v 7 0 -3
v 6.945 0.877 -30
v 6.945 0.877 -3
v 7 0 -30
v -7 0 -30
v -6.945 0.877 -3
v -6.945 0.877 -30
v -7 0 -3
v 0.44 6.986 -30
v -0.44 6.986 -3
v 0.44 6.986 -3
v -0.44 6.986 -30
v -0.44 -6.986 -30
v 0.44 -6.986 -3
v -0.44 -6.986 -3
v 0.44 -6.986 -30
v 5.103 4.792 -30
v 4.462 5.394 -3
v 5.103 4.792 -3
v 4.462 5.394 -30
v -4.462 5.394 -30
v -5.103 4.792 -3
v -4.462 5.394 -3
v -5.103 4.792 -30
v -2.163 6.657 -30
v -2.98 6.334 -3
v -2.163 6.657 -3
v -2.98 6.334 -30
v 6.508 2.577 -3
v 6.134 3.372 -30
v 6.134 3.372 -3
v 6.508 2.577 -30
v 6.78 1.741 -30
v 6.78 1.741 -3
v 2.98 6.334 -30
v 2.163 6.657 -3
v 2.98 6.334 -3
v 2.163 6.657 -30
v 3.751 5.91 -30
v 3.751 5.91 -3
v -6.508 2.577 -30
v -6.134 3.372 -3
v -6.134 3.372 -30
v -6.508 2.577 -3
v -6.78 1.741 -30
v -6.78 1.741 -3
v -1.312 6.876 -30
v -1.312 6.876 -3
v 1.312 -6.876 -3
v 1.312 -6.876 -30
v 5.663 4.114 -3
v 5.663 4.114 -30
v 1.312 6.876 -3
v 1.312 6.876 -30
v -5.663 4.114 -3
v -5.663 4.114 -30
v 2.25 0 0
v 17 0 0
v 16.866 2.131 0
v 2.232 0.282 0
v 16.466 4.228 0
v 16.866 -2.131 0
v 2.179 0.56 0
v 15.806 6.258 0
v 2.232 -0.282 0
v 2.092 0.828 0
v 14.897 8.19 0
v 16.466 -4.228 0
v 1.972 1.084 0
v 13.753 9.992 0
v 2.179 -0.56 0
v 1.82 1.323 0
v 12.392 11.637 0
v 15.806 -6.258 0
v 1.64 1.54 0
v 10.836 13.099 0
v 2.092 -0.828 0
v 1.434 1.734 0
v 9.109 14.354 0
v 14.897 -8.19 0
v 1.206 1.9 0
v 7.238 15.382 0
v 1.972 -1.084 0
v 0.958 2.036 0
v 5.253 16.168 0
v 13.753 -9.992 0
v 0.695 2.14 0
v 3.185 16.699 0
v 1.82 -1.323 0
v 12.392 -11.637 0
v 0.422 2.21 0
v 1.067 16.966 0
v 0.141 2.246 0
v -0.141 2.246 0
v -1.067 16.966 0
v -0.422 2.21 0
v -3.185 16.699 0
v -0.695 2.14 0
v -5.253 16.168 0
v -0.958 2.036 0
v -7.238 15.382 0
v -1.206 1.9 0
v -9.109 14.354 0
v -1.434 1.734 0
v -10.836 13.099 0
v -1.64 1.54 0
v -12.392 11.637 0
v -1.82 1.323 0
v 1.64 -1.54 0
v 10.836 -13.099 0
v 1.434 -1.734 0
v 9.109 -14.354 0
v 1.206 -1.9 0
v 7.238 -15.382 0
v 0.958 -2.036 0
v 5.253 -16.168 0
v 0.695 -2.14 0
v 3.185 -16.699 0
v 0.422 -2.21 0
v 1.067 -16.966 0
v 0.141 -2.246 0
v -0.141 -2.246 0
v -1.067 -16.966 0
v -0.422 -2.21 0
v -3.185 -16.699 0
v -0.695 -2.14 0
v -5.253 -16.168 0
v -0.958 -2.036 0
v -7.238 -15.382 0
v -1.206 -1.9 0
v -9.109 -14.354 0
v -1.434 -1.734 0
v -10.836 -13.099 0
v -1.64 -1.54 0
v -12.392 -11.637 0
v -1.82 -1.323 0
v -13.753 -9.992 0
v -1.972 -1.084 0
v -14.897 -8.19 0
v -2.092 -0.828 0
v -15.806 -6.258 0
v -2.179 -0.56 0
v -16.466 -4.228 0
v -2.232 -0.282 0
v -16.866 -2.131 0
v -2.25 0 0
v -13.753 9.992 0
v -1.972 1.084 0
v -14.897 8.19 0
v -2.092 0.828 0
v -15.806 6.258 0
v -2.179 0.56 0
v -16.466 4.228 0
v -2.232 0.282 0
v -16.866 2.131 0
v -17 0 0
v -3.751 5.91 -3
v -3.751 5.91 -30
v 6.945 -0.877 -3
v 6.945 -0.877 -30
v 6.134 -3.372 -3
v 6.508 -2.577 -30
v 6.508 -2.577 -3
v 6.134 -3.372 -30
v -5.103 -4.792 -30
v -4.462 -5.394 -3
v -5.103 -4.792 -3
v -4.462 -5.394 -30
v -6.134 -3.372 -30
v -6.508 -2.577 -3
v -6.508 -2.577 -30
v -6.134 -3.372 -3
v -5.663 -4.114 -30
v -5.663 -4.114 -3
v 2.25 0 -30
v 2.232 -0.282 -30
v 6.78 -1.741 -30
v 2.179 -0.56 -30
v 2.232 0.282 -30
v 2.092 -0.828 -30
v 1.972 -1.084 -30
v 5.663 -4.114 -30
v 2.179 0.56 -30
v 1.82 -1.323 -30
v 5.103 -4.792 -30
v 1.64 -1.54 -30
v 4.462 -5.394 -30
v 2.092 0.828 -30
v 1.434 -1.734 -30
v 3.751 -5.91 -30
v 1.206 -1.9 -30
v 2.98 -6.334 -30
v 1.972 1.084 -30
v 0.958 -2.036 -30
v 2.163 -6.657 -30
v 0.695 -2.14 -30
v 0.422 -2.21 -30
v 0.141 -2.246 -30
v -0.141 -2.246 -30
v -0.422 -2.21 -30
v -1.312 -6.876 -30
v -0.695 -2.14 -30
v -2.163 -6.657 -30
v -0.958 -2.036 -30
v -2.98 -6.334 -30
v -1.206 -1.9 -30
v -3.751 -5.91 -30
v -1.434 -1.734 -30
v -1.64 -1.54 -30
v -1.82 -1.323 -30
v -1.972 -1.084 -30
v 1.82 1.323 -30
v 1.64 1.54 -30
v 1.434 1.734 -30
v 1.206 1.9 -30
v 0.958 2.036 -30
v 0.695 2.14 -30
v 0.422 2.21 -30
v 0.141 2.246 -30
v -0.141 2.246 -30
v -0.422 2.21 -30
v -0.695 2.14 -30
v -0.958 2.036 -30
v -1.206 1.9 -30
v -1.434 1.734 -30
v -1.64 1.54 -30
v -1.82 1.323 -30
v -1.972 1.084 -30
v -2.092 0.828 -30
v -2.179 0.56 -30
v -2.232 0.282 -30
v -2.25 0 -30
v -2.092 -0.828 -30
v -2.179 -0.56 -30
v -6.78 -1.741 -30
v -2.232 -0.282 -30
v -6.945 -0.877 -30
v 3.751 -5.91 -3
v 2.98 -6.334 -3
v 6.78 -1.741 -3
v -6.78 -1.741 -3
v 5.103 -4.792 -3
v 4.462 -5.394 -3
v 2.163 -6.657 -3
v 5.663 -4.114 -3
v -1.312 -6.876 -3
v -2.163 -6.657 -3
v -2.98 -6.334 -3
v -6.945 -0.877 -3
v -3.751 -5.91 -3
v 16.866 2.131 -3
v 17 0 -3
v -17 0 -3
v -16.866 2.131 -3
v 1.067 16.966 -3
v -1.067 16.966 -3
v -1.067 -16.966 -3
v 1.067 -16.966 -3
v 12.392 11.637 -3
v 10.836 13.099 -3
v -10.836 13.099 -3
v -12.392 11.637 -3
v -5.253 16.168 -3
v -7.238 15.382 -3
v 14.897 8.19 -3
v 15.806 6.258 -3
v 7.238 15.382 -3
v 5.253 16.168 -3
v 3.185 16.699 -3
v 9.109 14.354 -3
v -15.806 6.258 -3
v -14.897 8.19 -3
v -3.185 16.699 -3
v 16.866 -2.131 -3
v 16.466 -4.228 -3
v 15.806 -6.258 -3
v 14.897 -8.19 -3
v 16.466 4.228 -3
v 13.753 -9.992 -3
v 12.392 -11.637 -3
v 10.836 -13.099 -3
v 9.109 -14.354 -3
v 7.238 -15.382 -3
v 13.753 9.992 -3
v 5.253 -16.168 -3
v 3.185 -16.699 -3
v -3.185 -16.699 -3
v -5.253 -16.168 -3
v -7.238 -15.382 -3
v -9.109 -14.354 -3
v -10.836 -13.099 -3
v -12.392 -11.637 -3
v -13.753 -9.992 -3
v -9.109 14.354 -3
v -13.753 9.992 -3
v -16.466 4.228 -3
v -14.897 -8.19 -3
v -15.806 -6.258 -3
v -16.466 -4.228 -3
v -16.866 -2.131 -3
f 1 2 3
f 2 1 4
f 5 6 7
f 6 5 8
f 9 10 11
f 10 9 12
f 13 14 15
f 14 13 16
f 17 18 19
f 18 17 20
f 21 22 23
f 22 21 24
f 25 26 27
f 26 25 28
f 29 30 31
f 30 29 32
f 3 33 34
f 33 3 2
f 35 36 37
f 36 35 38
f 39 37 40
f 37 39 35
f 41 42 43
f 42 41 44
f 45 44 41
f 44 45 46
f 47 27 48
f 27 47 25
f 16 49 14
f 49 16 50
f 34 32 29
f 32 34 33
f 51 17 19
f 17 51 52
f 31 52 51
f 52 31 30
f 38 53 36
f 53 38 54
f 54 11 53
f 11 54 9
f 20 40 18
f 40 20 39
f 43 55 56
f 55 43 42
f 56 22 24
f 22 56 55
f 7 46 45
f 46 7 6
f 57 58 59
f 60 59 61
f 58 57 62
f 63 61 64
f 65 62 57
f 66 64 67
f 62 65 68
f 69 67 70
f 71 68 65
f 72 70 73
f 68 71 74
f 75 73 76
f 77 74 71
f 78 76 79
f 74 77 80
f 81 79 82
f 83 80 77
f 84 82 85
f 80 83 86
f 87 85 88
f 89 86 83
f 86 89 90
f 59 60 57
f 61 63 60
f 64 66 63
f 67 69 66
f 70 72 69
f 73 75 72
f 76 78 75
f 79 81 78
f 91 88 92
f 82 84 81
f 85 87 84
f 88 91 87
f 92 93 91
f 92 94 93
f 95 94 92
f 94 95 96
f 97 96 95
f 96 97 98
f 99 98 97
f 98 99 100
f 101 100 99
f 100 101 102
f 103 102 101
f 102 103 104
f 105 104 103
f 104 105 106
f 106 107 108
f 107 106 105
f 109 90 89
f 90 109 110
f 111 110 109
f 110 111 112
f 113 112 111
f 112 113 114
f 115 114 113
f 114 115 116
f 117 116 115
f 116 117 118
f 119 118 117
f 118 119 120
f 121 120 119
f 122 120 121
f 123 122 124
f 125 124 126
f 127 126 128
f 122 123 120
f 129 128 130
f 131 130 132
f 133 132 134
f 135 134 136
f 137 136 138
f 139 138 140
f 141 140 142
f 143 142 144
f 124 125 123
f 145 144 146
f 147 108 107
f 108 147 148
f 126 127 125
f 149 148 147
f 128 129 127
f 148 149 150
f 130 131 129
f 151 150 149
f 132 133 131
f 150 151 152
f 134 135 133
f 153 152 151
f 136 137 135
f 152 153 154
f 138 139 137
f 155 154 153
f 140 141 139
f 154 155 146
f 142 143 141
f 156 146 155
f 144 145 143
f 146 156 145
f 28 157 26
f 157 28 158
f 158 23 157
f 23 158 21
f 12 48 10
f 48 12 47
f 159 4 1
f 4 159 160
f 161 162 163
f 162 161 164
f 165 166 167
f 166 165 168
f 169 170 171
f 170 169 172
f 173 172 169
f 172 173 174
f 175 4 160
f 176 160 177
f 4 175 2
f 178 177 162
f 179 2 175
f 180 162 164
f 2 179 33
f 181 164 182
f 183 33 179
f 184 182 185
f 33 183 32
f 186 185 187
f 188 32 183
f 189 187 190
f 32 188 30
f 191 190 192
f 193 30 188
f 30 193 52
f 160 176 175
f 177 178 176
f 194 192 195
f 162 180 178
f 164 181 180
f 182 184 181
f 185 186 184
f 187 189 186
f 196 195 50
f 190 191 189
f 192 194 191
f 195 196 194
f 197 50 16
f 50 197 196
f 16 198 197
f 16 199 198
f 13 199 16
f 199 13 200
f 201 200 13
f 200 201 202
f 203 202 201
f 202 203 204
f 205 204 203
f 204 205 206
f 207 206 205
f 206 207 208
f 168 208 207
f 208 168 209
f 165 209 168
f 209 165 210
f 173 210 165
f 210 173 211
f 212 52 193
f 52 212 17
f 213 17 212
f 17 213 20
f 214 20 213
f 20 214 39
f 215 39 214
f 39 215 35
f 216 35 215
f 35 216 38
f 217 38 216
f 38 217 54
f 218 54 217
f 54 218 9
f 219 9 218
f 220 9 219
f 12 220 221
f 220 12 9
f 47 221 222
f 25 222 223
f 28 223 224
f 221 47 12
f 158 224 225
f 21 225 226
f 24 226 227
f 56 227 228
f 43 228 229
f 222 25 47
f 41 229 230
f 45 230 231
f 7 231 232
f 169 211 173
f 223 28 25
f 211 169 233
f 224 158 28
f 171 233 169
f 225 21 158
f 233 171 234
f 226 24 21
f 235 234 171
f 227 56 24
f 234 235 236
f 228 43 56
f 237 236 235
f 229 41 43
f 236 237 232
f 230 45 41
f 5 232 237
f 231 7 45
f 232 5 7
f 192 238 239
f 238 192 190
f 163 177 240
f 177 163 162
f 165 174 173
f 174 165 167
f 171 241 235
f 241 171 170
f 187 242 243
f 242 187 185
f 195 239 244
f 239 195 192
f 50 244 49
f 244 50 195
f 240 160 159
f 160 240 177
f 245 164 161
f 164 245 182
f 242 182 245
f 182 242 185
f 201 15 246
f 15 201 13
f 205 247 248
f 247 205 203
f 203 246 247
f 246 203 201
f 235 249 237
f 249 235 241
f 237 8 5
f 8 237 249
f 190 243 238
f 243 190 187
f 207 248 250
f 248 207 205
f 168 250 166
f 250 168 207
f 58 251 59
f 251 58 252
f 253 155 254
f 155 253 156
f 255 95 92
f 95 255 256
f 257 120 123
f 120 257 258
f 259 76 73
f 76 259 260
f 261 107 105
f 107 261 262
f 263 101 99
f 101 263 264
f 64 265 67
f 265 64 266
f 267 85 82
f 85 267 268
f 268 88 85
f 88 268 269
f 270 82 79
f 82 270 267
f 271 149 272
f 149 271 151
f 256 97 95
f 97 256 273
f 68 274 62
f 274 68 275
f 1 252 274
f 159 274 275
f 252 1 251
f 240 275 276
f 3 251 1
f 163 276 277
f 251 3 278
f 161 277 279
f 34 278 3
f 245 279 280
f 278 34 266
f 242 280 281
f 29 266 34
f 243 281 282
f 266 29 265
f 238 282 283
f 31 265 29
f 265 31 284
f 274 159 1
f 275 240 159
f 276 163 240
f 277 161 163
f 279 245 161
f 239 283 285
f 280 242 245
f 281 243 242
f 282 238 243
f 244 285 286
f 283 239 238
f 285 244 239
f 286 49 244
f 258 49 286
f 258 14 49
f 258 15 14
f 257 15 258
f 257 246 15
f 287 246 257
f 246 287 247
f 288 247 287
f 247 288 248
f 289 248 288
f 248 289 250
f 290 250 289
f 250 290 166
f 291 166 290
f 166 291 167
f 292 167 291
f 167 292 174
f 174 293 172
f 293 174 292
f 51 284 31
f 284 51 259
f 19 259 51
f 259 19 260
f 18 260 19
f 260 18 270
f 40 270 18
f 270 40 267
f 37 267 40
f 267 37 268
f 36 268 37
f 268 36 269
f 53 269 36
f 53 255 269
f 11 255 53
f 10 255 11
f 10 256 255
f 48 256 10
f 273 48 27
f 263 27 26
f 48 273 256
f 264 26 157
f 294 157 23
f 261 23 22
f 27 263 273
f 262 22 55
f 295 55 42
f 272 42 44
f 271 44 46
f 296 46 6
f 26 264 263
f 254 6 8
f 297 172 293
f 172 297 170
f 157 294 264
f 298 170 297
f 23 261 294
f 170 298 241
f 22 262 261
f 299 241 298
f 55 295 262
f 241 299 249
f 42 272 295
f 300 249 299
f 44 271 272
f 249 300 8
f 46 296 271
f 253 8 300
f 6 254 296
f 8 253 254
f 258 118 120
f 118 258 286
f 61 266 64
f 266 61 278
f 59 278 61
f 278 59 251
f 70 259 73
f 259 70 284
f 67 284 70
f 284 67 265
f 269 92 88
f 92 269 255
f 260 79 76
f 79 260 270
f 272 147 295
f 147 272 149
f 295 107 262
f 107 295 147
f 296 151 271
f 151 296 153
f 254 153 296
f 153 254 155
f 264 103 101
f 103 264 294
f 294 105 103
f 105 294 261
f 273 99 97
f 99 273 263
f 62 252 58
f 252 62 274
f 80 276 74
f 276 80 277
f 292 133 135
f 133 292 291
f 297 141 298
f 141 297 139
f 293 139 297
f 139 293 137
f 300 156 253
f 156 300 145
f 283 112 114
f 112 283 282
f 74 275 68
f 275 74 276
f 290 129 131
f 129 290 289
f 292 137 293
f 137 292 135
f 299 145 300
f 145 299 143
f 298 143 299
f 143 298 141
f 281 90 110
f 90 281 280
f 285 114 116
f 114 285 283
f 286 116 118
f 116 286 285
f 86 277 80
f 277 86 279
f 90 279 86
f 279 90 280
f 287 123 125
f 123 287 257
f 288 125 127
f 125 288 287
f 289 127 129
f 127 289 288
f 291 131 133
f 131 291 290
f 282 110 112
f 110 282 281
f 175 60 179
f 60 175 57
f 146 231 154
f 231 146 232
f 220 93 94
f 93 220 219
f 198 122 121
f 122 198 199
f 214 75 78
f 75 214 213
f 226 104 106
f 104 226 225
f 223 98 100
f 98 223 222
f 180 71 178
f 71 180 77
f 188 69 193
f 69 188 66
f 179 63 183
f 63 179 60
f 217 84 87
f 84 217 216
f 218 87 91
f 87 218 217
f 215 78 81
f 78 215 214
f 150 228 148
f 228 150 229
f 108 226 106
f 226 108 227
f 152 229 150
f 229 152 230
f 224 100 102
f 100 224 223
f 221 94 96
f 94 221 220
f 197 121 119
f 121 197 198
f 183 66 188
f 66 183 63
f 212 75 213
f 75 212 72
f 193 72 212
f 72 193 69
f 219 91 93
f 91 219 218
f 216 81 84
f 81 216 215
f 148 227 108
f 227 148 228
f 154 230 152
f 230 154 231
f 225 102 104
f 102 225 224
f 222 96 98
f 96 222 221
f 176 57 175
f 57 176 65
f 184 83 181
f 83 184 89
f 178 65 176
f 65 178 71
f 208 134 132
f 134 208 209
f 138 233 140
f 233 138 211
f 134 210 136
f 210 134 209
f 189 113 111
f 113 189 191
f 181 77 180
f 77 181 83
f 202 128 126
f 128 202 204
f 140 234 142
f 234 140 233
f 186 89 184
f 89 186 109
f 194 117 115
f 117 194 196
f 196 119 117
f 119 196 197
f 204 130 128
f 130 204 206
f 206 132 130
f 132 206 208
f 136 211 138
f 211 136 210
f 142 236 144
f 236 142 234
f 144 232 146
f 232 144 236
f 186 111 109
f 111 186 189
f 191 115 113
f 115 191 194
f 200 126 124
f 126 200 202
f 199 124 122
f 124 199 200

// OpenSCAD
$fn = 50;


difference() {
	union() {
		translate(v = [0, 0, -30.0000000000]) {
			cylinder(h = 30, r = 7.0000000000);
		}
		translate(v = [0, 0, -3.0000000000]) {
			cylinder(h = 3, r = 17.0000000000);
		}
	}
	union() {
		#translate(v = [0, 0, -30]) {
			cylinder(h = 30, r = 2.2500000000);
		}
	}
}
